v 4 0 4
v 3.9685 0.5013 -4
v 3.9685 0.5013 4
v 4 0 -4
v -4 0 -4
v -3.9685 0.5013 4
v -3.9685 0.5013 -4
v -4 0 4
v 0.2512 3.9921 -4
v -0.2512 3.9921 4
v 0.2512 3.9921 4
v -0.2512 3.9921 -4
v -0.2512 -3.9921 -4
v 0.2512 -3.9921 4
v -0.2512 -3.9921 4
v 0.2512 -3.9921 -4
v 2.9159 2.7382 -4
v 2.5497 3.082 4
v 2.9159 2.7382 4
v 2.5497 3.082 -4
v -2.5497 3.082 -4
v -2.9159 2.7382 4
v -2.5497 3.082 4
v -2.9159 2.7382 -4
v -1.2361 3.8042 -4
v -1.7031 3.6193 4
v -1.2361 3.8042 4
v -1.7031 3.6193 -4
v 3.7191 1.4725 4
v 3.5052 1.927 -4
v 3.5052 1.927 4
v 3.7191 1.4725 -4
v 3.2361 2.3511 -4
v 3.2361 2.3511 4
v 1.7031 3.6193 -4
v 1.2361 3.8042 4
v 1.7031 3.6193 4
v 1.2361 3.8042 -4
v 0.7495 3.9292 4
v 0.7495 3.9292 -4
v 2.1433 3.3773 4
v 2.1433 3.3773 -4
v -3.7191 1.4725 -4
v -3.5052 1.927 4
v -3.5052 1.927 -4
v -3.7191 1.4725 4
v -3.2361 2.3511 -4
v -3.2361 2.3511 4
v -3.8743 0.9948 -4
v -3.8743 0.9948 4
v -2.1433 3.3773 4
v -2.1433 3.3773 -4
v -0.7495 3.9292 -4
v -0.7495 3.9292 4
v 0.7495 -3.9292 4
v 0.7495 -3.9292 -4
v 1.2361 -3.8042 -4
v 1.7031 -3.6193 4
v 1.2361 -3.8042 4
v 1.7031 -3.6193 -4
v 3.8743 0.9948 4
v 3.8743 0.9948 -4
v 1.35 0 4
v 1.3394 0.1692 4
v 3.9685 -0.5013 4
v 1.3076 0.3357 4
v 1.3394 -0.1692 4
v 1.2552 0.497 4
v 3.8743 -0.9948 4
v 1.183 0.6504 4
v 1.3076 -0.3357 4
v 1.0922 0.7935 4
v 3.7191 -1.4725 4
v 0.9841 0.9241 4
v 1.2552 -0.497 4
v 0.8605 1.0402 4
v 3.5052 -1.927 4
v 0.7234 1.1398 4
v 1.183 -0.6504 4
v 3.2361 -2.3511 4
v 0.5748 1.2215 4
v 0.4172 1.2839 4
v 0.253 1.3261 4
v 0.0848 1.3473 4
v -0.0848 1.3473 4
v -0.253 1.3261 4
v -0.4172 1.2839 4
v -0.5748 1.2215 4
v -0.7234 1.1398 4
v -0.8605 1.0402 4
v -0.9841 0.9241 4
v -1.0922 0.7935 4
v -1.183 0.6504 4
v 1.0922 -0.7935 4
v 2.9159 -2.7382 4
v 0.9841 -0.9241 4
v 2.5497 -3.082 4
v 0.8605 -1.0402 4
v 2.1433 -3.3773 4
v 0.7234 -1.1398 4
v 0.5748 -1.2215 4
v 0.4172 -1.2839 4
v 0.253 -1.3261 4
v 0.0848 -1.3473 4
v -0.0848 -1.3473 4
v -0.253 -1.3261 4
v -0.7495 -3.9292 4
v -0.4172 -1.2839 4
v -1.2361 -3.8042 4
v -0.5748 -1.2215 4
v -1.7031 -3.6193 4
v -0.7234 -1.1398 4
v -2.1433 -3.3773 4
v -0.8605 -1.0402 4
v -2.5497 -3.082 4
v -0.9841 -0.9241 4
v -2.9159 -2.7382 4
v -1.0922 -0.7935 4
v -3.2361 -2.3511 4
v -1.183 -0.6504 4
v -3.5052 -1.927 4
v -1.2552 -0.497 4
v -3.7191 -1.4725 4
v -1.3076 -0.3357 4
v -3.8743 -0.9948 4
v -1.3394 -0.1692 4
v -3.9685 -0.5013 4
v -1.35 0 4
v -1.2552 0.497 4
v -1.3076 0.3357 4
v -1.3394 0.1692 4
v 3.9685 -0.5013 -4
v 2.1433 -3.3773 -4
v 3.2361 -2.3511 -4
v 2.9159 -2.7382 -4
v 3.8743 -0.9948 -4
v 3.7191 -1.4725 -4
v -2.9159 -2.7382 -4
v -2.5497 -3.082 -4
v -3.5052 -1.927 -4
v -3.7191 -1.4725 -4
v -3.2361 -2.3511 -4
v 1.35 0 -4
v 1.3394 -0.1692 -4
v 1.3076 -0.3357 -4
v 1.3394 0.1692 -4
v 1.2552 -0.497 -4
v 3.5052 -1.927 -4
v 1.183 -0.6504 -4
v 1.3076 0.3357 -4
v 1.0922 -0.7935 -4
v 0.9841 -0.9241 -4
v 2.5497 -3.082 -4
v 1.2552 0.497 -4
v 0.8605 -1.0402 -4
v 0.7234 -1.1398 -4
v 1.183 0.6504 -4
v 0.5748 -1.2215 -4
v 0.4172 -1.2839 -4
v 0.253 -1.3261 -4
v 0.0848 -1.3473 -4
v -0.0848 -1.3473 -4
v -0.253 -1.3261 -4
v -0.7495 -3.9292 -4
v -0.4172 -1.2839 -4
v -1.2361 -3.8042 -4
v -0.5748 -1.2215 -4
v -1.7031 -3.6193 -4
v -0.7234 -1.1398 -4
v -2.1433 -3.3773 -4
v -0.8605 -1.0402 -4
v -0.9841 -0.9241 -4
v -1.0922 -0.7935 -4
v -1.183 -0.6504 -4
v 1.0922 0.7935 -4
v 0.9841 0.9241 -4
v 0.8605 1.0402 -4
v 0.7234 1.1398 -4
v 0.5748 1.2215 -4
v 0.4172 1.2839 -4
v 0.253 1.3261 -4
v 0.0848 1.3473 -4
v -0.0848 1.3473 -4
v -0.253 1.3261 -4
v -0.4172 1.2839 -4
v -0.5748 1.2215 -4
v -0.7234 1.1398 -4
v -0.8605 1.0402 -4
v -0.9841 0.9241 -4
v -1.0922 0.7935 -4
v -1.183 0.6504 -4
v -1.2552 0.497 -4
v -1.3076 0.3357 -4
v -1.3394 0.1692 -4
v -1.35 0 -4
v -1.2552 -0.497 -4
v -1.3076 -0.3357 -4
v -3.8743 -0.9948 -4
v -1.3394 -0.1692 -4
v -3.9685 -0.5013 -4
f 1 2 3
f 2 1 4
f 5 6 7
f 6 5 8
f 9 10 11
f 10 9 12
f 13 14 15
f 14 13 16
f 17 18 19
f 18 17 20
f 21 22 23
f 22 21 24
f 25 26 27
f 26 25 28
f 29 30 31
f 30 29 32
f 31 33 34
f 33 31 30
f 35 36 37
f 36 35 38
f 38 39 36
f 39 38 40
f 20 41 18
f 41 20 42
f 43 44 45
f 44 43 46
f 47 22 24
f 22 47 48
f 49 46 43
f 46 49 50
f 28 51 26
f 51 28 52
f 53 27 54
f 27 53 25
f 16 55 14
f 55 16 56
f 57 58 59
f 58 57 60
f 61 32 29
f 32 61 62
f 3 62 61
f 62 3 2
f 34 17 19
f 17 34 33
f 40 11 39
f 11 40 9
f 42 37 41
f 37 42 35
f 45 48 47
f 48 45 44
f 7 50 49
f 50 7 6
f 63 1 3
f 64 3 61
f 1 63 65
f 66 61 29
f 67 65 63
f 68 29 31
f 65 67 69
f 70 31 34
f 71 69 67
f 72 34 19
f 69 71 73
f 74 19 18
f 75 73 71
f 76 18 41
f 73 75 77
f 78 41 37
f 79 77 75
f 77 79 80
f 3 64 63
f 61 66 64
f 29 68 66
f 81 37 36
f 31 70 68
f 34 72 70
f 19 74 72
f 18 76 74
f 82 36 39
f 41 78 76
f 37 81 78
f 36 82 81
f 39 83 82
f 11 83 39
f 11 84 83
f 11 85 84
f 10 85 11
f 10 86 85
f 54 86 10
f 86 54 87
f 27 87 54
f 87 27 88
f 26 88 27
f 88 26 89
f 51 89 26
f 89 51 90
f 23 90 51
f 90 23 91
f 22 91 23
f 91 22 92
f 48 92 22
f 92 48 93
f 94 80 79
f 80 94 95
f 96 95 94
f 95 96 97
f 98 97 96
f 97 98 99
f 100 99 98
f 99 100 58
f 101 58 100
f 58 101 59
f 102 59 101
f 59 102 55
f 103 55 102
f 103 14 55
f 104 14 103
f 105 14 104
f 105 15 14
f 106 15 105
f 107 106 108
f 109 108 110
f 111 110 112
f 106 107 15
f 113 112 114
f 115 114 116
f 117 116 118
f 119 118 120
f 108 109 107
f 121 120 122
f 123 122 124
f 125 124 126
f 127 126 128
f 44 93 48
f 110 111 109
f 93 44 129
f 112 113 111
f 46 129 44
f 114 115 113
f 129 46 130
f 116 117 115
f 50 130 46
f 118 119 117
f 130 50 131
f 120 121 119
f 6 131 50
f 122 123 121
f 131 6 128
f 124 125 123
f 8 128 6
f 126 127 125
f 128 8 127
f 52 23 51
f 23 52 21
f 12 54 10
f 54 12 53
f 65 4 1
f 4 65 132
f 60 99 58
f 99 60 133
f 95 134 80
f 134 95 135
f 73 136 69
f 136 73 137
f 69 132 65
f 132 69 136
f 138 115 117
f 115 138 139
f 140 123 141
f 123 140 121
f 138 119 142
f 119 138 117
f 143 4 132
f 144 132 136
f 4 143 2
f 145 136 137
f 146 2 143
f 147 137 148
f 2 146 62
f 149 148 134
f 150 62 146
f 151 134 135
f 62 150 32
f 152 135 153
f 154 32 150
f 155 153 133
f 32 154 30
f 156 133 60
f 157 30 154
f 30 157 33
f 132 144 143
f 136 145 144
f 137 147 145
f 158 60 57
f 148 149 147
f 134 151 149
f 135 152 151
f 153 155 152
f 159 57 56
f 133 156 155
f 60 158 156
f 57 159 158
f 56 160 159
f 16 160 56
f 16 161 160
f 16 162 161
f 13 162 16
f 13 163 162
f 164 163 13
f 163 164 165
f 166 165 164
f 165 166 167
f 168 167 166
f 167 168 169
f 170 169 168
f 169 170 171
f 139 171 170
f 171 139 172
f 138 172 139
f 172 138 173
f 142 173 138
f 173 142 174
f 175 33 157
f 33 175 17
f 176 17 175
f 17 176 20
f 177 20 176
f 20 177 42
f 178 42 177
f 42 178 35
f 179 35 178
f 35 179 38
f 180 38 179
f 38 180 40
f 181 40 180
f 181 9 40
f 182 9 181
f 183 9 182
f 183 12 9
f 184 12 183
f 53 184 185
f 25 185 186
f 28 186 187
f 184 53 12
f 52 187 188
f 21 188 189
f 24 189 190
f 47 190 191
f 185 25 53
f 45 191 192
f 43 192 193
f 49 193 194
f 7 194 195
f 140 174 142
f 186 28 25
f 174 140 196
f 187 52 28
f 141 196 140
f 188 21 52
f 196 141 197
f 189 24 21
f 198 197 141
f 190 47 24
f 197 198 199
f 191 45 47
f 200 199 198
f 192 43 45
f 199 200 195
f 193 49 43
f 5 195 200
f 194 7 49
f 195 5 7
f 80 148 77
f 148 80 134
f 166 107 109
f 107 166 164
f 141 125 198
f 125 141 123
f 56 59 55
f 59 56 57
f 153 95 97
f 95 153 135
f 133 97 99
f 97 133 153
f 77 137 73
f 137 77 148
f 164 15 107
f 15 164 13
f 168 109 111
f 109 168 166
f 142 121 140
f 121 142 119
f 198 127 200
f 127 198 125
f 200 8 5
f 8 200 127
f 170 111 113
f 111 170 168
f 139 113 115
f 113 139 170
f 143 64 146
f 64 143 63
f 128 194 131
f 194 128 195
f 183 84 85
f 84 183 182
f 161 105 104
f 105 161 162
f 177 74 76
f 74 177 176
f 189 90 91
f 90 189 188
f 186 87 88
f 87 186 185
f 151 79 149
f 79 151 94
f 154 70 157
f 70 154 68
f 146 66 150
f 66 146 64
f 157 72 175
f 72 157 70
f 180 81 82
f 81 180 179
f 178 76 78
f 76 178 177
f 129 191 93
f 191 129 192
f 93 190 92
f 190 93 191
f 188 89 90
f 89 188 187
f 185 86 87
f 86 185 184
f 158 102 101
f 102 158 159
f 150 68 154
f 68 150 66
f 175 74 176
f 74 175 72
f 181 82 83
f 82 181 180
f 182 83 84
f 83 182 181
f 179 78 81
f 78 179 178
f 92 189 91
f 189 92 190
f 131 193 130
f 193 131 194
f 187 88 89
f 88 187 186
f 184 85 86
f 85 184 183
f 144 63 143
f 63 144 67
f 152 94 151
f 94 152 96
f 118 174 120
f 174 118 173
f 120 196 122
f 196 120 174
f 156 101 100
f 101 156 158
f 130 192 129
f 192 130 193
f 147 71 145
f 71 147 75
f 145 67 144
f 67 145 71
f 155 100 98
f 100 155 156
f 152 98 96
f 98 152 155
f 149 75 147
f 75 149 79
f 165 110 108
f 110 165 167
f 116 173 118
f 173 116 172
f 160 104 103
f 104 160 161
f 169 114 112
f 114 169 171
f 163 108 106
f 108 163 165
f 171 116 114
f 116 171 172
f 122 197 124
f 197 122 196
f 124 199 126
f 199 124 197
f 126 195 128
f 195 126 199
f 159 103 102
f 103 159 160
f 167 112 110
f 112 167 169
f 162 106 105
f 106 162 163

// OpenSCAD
$fn = 50;


difference() {
	union() {
		translate(v = [0, 0, -4.0000000000]) {
			cylinder(h = 8, r = 4.0000000000);
		}
	}
	union() {
		translate(v = [0, 0, -100.0000000000]) {
			cylinder(h = 200, r = 1.3500000000);
		}
	}
}
